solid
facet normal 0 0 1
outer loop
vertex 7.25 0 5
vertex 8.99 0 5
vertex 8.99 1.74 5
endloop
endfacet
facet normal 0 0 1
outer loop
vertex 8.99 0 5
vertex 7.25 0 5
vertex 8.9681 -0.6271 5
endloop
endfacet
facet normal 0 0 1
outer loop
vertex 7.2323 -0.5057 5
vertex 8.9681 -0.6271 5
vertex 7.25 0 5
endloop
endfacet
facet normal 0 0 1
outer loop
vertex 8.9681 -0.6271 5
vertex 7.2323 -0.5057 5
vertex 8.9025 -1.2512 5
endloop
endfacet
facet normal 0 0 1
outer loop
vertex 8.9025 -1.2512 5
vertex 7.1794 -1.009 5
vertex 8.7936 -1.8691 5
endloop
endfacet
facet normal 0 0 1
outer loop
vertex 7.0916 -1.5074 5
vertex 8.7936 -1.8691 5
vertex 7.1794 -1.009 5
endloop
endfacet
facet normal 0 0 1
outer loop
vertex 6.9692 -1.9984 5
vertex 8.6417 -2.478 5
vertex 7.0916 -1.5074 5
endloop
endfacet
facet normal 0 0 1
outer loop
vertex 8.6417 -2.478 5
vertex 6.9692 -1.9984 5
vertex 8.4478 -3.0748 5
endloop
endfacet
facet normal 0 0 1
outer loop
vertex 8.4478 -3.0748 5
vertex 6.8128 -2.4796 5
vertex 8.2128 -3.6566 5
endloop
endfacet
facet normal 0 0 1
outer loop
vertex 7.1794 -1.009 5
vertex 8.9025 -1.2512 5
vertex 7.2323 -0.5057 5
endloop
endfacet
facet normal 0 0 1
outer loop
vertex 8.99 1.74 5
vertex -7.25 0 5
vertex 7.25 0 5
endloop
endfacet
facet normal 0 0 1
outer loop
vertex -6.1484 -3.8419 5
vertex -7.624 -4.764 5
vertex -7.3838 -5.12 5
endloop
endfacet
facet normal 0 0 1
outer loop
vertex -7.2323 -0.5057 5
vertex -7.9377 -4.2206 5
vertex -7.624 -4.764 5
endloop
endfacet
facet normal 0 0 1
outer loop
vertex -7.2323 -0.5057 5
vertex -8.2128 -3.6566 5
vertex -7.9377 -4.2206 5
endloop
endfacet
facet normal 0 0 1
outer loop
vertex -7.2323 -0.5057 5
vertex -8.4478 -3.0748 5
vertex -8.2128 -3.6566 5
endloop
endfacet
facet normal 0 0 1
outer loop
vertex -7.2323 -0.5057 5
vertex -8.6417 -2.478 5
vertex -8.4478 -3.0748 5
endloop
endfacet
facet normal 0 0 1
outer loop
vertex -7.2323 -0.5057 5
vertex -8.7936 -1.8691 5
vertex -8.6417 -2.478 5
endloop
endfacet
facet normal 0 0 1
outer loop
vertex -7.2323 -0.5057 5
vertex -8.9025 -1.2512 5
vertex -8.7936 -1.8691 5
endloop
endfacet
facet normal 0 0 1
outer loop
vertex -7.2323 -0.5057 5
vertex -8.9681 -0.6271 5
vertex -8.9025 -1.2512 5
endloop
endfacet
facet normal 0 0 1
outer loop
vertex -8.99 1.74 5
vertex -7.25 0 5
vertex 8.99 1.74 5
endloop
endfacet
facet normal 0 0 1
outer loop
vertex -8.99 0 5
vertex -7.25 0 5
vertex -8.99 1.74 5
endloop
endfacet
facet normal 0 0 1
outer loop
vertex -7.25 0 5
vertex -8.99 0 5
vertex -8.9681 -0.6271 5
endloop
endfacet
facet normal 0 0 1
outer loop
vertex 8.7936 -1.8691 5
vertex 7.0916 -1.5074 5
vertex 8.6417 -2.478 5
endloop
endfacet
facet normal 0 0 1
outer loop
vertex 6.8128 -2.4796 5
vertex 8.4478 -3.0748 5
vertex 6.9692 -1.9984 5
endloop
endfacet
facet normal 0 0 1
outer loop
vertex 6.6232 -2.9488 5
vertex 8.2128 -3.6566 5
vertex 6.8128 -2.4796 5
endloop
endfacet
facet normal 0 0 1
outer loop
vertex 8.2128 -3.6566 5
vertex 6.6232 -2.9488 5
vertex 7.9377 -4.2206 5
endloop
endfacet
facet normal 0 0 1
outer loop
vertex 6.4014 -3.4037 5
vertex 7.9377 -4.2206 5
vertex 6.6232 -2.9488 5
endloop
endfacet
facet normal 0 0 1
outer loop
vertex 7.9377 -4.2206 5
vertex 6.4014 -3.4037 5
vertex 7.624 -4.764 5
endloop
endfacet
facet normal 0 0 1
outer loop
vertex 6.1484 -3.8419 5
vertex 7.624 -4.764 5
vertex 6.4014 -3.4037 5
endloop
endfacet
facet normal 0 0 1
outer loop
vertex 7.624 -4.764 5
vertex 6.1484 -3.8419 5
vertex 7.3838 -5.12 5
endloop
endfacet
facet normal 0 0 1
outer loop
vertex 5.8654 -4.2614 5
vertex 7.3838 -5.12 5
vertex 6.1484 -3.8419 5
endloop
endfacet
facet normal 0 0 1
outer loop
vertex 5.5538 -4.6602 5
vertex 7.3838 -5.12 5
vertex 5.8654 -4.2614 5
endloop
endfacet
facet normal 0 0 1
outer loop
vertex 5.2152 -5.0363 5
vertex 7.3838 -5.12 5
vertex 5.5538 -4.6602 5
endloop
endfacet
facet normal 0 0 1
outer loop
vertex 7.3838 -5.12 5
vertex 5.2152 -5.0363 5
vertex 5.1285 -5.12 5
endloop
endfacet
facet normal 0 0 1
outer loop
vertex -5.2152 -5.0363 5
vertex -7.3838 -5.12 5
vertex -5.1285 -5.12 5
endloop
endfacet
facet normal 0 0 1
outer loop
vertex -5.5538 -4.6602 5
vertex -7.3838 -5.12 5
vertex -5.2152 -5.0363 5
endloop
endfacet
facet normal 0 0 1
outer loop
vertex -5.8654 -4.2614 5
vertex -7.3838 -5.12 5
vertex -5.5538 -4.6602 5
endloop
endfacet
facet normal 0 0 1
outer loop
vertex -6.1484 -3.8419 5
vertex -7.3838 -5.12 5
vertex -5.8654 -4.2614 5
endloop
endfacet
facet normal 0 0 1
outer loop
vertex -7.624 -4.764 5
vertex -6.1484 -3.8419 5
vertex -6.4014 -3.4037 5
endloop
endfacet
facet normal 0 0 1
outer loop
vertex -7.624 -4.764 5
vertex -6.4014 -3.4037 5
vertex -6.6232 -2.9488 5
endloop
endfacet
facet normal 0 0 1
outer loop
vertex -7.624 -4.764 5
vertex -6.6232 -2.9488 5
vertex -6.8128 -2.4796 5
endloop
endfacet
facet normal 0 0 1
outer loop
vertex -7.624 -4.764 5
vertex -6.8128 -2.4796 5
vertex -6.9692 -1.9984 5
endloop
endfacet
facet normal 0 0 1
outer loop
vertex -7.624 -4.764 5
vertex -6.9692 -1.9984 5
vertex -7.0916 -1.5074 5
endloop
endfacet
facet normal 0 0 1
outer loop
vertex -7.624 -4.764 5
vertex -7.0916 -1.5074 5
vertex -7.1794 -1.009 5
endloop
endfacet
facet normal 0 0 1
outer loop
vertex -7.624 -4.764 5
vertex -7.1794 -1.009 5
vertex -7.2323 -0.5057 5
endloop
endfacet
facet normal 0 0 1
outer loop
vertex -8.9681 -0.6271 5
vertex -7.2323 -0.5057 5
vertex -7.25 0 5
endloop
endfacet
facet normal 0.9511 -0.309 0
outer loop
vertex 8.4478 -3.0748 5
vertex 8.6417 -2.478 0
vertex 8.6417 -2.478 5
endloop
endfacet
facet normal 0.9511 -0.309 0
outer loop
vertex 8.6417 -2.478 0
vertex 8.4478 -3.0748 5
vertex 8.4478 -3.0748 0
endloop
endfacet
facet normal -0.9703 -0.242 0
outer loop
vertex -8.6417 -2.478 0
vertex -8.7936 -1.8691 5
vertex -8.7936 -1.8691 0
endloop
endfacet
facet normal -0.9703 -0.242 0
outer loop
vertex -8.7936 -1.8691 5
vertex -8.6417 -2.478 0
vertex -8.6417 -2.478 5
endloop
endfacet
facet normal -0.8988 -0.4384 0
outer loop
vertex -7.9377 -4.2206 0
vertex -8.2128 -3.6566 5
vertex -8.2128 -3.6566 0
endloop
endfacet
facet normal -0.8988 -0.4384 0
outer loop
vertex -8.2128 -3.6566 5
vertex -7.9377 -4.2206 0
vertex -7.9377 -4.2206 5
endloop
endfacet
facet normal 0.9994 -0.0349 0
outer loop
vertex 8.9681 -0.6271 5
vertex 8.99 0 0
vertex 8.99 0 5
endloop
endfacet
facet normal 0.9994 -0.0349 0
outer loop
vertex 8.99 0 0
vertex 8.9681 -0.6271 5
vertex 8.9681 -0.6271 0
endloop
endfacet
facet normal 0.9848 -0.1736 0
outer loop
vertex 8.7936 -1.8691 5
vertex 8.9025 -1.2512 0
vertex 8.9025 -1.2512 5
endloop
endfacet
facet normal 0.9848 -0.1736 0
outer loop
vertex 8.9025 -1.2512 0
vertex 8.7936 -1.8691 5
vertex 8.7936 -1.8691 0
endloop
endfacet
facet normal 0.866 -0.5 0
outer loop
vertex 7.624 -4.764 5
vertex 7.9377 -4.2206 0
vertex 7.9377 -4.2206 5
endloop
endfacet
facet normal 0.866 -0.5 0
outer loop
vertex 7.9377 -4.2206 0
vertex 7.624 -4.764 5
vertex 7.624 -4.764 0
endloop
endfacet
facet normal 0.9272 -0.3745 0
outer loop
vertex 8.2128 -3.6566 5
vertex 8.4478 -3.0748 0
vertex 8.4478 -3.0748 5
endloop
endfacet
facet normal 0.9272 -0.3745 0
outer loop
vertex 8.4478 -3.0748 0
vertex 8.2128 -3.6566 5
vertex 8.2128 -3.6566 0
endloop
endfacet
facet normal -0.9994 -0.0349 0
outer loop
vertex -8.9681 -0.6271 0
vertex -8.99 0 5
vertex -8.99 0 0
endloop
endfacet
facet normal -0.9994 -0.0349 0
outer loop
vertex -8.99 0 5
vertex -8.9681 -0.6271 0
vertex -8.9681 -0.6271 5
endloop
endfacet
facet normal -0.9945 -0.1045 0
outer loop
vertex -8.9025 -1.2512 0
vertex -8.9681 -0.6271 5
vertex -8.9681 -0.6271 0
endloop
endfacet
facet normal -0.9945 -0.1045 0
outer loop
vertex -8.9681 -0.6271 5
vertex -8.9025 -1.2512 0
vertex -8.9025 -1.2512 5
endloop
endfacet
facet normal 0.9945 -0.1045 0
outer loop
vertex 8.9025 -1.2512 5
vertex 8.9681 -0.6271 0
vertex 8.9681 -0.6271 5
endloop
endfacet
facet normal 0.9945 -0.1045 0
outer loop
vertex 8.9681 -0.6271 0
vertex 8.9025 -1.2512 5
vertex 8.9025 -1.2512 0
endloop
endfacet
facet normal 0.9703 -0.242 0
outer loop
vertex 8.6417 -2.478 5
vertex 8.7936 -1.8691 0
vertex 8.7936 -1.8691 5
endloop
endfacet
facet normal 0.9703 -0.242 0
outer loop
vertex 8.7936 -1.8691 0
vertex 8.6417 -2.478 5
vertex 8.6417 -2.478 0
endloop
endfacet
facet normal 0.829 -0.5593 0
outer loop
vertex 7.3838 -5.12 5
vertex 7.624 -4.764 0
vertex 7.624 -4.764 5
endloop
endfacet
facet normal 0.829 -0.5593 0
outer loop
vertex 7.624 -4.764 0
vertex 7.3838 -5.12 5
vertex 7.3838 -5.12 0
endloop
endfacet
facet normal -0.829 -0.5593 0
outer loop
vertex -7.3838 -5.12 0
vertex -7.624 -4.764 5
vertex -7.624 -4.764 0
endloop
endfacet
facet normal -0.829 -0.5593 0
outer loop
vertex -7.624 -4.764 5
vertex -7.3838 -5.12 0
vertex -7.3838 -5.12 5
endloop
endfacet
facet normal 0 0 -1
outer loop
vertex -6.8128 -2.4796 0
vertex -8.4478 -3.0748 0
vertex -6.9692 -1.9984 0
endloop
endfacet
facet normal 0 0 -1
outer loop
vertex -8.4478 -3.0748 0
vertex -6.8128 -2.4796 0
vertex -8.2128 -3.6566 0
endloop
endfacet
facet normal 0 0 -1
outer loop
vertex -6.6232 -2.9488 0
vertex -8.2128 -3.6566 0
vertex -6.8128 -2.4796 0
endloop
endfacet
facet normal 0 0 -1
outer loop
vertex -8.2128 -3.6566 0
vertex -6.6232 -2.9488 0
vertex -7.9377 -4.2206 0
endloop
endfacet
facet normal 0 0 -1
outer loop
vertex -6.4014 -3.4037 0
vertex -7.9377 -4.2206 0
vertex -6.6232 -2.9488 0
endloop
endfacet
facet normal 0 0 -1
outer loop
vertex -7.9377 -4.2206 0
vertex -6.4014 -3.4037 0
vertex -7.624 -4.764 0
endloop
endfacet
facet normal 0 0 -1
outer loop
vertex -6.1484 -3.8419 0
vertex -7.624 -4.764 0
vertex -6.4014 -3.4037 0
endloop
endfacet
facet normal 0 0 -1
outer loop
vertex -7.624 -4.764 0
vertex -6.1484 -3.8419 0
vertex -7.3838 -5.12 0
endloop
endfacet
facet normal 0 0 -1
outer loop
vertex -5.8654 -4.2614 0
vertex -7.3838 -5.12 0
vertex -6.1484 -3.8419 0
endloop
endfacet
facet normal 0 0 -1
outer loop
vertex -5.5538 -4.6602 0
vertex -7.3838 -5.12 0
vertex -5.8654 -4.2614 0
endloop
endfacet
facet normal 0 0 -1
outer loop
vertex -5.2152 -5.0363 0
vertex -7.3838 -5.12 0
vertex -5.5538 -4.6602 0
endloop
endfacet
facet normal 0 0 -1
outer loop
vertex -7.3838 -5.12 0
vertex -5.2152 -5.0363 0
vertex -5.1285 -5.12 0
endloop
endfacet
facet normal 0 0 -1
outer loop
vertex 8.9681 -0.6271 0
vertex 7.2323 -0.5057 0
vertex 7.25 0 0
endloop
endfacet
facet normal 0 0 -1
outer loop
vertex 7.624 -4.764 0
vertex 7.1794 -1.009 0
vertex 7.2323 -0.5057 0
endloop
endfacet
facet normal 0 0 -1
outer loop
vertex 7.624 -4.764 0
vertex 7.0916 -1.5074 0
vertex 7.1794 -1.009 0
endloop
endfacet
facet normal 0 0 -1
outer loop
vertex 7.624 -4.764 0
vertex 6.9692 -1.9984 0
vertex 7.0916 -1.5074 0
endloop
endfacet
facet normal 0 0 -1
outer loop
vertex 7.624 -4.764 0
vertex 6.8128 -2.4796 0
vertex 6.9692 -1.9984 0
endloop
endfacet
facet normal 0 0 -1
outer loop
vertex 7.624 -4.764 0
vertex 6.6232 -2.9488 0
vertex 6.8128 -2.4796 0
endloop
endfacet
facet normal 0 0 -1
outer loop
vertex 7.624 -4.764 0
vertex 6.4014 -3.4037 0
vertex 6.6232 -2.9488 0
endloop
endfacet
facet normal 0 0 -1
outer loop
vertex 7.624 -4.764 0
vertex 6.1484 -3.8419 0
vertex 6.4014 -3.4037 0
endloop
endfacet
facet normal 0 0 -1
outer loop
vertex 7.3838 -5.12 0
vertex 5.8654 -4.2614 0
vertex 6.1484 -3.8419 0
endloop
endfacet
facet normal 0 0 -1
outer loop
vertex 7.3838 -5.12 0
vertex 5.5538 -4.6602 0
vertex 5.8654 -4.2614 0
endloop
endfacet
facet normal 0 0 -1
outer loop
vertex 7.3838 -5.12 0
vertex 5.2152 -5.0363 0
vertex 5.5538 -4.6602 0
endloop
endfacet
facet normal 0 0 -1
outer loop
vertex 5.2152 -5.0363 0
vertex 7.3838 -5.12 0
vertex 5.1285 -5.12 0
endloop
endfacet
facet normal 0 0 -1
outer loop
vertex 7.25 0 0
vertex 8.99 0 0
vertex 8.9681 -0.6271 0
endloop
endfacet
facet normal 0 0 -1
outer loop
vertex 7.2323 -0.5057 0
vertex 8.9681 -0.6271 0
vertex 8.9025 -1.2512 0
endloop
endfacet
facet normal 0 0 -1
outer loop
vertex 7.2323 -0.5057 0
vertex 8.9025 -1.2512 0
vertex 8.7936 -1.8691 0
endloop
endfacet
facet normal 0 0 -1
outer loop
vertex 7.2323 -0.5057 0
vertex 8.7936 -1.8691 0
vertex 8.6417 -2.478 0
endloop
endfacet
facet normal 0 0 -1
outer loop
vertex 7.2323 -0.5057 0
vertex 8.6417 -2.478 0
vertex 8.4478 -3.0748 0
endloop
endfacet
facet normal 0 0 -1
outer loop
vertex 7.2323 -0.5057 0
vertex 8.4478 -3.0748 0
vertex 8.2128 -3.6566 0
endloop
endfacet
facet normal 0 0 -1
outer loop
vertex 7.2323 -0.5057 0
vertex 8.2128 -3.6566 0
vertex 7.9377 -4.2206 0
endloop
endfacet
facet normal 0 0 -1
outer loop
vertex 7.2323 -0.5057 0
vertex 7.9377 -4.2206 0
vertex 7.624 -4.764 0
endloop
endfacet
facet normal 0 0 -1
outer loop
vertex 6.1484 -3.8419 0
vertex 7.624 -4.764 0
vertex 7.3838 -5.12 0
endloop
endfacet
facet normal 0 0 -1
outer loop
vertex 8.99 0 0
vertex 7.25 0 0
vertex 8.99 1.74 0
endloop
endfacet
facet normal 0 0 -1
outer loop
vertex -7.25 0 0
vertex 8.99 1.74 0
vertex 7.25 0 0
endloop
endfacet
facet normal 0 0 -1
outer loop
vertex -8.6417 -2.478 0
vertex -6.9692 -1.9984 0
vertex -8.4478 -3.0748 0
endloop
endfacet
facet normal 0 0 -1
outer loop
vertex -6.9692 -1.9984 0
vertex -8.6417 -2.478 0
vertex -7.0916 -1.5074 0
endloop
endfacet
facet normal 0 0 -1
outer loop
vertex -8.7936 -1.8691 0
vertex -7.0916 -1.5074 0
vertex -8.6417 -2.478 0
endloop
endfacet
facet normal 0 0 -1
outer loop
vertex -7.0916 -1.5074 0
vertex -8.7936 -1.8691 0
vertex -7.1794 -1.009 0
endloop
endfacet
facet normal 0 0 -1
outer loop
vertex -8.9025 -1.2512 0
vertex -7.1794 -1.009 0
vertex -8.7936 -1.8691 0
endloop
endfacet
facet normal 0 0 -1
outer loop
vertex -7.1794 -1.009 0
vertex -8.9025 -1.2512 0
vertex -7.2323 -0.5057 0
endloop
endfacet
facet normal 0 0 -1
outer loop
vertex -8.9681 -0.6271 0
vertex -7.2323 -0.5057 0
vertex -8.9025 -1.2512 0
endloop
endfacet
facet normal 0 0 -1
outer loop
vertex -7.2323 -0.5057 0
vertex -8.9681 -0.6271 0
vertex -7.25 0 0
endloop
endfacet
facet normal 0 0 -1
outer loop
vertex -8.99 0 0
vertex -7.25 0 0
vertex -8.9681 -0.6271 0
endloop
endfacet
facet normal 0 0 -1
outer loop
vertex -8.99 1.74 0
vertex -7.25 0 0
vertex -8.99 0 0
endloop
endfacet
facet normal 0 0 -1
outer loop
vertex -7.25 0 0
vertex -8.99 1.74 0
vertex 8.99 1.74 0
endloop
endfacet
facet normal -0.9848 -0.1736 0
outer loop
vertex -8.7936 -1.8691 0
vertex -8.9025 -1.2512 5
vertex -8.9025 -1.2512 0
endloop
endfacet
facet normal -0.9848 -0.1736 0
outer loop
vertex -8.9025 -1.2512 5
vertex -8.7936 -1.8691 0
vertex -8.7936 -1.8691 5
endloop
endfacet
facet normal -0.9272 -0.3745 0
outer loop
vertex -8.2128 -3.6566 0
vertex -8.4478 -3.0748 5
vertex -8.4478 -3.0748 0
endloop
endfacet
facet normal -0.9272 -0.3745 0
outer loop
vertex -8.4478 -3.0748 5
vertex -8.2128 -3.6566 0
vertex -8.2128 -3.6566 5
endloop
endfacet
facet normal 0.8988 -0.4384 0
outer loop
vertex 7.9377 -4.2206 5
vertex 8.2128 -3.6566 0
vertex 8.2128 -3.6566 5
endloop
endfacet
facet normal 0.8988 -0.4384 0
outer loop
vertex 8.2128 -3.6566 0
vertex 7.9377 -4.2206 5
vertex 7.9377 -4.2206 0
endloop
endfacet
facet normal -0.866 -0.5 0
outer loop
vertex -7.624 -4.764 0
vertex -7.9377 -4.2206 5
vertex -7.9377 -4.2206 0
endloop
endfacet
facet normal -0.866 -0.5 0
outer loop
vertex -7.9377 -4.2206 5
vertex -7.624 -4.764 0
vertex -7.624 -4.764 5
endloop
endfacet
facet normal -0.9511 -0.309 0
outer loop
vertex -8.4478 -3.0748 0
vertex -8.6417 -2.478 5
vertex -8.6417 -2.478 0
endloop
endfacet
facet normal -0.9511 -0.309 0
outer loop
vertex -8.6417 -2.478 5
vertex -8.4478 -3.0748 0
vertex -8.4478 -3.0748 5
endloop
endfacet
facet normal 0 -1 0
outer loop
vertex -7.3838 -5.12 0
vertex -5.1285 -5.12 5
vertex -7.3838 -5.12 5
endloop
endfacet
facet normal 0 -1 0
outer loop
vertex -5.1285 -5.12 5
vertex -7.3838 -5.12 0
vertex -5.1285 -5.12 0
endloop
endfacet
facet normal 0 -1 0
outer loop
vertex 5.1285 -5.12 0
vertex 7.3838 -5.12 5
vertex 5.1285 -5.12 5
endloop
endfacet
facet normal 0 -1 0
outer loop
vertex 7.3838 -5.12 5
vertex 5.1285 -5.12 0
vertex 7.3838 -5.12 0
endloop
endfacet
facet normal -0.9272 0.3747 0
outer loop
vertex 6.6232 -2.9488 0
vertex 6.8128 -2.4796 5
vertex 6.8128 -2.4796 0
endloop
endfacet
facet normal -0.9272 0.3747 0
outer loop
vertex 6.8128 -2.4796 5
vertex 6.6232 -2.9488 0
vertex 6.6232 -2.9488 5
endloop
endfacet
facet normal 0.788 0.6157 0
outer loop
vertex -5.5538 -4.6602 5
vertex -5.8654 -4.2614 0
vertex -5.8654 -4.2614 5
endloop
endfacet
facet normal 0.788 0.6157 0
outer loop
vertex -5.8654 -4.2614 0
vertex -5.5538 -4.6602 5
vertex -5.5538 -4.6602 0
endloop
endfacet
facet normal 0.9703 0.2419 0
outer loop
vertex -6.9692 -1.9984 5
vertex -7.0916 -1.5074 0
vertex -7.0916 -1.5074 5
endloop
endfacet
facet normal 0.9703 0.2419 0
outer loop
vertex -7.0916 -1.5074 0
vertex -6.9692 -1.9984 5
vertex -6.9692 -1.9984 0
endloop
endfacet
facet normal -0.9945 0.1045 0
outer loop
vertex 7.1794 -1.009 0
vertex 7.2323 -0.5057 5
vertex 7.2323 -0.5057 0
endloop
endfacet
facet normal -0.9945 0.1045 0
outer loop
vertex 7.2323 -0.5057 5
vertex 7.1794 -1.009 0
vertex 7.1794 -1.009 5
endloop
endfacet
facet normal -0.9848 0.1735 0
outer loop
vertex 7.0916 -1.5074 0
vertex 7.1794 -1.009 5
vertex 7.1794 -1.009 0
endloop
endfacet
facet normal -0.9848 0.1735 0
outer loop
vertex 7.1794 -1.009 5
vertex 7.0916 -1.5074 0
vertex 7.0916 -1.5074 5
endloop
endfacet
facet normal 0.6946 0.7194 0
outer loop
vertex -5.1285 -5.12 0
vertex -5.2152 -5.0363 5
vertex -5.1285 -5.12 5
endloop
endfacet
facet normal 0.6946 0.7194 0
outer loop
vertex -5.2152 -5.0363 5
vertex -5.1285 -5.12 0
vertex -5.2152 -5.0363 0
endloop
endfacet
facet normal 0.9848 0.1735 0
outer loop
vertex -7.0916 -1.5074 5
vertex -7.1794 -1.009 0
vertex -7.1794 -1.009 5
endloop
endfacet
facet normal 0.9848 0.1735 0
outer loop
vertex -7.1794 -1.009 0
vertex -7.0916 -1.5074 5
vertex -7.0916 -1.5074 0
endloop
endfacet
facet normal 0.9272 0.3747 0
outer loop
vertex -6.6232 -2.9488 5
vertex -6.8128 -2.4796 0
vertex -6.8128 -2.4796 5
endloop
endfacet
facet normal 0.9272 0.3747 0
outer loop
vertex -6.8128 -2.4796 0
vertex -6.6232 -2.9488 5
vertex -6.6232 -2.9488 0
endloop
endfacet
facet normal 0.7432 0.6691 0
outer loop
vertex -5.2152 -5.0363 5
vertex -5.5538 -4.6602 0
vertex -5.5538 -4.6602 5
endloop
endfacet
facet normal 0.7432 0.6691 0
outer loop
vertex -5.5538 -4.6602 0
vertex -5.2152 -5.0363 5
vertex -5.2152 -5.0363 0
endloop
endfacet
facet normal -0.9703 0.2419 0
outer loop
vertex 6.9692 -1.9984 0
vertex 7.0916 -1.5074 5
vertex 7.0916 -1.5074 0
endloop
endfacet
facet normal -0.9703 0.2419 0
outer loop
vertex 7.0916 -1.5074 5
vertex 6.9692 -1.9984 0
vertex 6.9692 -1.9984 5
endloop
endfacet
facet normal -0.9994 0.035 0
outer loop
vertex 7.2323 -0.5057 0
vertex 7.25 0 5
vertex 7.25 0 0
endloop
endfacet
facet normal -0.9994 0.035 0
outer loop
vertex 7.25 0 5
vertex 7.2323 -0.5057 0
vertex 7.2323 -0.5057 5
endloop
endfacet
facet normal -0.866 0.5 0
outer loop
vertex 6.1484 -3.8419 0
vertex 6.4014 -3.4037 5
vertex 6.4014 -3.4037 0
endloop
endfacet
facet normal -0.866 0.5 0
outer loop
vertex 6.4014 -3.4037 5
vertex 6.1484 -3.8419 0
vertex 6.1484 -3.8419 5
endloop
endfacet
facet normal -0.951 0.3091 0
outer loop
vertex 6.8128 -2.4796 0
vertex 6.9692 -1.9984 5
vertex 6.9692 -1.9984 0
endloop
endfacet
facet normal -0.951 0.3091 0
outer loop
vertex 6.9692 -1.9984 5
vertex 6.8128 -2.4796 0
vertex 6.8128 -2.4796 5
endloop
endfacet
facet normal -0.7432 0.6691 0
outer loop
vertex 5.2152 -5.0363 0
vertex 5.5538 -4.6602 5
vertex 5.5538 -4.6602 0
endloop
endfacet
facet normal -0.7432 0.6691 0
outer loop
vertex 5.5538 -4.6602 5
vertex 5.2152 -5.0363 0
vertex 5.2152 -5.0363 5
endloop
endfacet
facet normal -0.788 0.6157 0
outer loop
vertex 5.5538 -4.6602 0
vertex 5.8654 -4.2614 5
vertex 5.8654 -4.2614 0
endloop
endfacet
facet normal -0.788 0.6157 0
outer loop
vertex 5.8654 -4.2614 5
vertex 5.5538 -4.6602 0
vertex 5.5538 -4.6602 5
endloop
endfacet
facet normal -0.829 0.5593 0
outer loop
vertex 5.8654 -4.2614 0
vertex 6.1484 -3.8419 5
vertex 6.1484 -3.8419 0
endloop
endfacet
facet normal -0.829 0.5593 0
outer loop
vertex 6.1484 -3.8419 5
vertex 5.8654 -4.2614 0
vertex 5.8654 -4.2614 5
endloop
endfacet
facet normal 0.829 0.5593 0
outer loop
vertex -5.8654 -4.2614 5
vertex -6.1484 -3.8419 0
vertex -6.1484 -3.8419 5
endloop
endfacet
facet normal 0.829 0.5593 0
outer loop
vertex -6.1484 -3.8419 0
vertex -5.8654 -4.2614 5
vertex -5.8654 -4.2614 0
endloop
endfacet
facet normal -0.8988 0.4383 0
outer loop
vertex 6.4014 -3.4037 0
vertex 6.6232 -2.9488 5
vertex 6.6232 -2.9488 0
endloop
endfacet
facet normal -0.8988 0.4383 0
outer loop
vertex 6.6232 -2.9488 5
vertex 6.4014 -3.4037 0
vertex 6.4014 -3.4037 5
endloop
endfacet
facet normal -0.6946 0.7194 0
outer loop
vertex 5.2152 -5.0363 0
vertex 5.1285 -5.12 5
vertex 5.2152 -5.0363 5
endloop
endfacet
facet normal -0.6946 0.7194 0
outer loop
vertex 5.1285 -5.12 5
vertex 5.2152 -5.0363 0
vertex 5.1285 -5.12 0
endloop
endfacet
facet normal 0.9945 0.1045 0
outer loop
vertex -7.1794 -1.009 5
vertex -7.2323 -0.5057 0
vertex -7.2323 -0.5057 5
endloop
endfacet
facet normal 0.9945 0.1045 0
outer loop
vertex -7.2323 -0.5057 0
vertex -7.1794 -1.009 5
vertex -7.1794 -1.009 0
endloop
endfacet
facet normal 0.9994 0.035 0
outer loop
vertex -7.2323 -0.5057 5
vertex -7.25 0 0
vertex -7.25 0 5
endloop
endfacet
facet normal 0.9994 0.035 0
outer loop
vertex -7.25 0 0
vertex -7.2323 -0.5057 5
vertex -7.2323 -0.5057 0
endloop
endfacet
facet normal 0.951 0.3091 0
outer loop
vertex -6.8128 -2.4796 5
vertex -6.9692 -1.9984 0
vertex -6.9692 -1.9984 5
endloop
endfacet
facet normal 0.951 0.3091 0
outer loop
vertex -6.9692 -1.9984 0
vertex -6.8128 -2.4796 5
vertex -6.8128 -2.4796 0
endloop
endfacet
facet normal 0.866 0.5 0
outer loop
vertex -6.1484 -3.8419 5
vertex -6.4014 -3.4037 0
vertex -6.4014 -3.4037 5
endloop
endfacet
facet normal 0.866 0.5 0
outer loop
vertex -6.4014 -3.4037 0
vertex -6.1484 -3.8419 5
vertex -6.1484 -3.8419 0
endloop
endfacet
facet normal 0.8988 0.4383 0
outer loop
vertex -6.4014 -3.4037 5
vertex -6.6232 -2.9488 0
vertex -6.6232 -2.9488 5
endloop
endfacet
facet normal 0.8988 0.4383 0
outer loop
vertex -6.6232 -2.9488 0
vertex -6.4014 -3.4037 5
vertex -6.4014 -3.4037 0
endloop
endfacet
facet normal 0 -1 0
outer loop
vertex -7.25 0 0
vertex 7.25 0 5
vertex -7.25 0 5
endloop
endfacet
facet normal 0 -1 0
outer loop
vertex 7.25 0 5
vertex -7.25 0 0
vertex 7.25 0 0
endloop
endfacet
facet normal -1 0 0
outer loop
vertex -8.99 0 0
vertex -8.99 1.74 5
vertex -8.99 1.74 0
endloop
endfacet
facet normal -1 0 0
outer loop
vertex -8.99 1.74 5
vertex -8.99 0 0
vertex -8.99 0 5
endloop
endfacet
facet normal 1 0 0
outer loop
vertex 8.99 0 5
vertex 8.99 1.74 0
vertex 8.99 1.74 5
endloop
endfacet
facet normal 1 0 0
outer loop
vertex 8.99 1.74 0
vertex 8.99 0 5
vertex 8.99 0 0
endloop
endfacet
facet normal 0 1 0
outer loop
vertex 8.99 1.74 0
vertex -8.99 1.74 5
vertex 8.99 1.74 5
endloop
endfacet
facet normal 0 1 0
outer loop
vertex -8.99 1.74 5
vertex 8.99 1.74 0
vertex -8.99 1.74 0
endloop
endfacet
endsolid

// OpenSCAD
//14.5 spread...
//so... 13.5 to a 15
$fn = 90;
wall_thickness = 1.74;

intersection() {
    difference() {
        intersection() {
            cylinder(d = 14.5 + (wall_thickness * 2), h = 5);
            translate([0, 3, 2.5]) cube([14.5 + (wall_thickness * 2), 14.5 + wall_thickness, 5], center = true);
        }
        cylinder(d = 14.5, h = 5);
    }
    translate([-(14.5 + (wall_thickness * 2)) / 2, -(14.5 + wall_thickness), 0]) cube([14.5 + (wall_thickness* 2), 14.5 + wall_thickness, 5]);
}
translate([-(14.5 + (wall_thickness * 2)) / 2, 0, 0]) cube([14.5 + (wall_thickness * 2), wall_thickness, 5]);
